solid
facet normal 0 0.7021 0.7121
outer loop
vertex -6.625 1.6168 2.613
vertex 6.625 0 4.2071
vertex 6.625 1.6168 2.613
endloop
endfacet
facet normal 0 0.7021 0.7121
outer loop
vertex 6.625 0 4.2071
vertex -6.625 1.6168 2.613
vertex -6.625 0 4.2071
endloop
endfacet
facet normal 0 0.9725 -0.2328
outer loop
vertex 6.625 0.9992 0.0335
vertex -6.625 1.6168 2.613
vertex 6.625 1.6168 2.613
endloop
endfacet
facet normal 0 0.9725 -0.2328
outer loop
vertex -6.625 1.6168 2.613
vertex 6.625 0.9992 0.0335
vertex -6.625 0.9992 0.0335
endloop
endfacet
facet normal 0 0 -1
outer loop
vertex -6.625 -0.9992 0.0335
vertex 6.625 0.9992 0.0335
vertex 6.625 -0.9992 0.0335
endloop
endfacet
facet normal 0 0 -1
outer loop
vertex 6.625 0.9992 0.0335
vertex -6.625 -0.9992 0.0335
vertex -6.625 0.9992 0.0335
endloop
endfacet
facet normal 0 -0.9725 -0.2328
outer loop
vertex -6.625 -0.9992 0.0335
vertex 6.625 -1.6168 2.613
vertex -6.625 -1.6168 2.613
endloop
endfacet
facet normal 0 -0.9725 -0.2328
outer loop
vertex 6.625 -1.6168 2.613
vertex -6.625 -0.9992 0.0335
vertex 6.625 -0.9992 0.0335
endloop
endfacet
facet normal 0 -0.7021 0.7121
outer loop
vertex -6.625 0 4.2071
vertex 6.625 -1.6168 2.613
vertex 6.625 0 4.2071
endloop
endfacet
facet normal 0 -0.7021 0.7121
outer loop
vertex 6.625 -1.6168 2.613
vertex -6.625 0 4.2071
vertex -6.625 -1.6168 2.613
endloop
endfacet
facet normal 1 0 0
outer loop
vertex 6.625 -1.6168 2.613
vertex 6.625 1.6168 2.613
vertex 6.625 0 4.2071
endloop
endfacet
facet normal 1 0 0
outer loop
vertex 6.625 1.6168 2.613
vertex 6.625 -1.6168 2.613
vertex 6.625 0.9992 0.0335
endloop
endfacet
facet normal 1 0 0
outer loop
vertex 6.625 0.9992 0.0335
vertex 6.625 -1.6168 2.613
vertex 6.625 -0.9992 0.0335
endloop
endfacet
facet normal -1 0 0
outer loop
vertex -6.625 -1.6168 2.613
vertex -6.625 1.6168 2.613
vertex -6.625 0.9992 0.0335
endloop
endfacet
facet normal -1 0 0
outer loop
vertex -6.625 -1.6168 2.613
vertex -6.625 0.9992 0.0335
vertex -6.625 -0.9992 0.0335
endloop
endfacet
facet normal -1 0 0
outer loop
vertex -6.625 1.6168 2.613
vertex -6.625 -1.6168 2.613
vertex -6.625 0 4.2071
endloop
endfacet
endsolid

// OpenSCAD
// file: plug-sensor-rod.scad
dia = 13;
length = 15.91;
dia2 = 4.75;
sensor_h = 30.75;

bolt_dia = 5.76;

clr = 0.3;

chipx = 2.47;
chipy = 3.07;
chipz = 0.96;

module main() {
    difference() {
        hull() {
            cylinder(d= dia-2*clr, h = sensor_h, $fn= 65, center=false);
            translate([length-dia/2-dia2/2,0,0])
                cylinder(d= dia2-2*clr, h = sensor_h, $fn= 35, center=false);
        }
        translate([0,0,sensor_h/2])
            rotate([0,90,0])
                cylinder(d = bolt_dia+2, h = length + 4, $fn = 21, center=true);
        translate([0,0,sensor_h*1/3]) hull() {
            cylinder(d= dia-2, h = sensor_h*1/3, $fn= 65, center=false);
            translate([length-dia/2-dia2/2,0,0])
                cylinder(d= dia2-2, h = sensor_h*1/3, $fn= 35, center=false);
        }
        translate([0,0,sensor_h*2/3-0.015]) hull() {
            cylinder(d1= dia-2.1, d2= 0.5,  h = sensor_h*0.8/3, $fn= 65, center=false);
            translate([length-dia/2-dia2/2,0,0])
                cylinder(d1= dia2-2.1, d2= 0.5, h = sensor_h*0.8/3, $fn= 35, center=false);
        }
    }
}

module cap() {
    
    hull() {
        cylinder(d= dia+2, h = chipz, $fn= 65, center=false);
        translate([length-dia/2-dia2/2,0,0])
            cylinder(d= dia2+2, h = chipz, $fn= 35, center=false);
    }
}

module chip_carrier() {
    cube([chipx, chipy, chipz]);
}
// main file
include <plug-sensor-rod.scad>

/*
difference() {
    union() {
        translate([0,0,chipz-0.03]) main();
        cap();
    }
    translate([0,0, -0.3])
        cylinder(d = 4+1, h = sensor_h*1/3-1, $fn=5, center= false);
}
*/

scale([1,1,3.8/2.8]) translate([(sensor_h*1/3-1+4)/2,0, (4-2*clr)/2-0.3]) rotate([0,-90,0])
        cylinder(d = 4-2*clr, h = sensor_h*1/3-1+4, $fn=5, center= false);
